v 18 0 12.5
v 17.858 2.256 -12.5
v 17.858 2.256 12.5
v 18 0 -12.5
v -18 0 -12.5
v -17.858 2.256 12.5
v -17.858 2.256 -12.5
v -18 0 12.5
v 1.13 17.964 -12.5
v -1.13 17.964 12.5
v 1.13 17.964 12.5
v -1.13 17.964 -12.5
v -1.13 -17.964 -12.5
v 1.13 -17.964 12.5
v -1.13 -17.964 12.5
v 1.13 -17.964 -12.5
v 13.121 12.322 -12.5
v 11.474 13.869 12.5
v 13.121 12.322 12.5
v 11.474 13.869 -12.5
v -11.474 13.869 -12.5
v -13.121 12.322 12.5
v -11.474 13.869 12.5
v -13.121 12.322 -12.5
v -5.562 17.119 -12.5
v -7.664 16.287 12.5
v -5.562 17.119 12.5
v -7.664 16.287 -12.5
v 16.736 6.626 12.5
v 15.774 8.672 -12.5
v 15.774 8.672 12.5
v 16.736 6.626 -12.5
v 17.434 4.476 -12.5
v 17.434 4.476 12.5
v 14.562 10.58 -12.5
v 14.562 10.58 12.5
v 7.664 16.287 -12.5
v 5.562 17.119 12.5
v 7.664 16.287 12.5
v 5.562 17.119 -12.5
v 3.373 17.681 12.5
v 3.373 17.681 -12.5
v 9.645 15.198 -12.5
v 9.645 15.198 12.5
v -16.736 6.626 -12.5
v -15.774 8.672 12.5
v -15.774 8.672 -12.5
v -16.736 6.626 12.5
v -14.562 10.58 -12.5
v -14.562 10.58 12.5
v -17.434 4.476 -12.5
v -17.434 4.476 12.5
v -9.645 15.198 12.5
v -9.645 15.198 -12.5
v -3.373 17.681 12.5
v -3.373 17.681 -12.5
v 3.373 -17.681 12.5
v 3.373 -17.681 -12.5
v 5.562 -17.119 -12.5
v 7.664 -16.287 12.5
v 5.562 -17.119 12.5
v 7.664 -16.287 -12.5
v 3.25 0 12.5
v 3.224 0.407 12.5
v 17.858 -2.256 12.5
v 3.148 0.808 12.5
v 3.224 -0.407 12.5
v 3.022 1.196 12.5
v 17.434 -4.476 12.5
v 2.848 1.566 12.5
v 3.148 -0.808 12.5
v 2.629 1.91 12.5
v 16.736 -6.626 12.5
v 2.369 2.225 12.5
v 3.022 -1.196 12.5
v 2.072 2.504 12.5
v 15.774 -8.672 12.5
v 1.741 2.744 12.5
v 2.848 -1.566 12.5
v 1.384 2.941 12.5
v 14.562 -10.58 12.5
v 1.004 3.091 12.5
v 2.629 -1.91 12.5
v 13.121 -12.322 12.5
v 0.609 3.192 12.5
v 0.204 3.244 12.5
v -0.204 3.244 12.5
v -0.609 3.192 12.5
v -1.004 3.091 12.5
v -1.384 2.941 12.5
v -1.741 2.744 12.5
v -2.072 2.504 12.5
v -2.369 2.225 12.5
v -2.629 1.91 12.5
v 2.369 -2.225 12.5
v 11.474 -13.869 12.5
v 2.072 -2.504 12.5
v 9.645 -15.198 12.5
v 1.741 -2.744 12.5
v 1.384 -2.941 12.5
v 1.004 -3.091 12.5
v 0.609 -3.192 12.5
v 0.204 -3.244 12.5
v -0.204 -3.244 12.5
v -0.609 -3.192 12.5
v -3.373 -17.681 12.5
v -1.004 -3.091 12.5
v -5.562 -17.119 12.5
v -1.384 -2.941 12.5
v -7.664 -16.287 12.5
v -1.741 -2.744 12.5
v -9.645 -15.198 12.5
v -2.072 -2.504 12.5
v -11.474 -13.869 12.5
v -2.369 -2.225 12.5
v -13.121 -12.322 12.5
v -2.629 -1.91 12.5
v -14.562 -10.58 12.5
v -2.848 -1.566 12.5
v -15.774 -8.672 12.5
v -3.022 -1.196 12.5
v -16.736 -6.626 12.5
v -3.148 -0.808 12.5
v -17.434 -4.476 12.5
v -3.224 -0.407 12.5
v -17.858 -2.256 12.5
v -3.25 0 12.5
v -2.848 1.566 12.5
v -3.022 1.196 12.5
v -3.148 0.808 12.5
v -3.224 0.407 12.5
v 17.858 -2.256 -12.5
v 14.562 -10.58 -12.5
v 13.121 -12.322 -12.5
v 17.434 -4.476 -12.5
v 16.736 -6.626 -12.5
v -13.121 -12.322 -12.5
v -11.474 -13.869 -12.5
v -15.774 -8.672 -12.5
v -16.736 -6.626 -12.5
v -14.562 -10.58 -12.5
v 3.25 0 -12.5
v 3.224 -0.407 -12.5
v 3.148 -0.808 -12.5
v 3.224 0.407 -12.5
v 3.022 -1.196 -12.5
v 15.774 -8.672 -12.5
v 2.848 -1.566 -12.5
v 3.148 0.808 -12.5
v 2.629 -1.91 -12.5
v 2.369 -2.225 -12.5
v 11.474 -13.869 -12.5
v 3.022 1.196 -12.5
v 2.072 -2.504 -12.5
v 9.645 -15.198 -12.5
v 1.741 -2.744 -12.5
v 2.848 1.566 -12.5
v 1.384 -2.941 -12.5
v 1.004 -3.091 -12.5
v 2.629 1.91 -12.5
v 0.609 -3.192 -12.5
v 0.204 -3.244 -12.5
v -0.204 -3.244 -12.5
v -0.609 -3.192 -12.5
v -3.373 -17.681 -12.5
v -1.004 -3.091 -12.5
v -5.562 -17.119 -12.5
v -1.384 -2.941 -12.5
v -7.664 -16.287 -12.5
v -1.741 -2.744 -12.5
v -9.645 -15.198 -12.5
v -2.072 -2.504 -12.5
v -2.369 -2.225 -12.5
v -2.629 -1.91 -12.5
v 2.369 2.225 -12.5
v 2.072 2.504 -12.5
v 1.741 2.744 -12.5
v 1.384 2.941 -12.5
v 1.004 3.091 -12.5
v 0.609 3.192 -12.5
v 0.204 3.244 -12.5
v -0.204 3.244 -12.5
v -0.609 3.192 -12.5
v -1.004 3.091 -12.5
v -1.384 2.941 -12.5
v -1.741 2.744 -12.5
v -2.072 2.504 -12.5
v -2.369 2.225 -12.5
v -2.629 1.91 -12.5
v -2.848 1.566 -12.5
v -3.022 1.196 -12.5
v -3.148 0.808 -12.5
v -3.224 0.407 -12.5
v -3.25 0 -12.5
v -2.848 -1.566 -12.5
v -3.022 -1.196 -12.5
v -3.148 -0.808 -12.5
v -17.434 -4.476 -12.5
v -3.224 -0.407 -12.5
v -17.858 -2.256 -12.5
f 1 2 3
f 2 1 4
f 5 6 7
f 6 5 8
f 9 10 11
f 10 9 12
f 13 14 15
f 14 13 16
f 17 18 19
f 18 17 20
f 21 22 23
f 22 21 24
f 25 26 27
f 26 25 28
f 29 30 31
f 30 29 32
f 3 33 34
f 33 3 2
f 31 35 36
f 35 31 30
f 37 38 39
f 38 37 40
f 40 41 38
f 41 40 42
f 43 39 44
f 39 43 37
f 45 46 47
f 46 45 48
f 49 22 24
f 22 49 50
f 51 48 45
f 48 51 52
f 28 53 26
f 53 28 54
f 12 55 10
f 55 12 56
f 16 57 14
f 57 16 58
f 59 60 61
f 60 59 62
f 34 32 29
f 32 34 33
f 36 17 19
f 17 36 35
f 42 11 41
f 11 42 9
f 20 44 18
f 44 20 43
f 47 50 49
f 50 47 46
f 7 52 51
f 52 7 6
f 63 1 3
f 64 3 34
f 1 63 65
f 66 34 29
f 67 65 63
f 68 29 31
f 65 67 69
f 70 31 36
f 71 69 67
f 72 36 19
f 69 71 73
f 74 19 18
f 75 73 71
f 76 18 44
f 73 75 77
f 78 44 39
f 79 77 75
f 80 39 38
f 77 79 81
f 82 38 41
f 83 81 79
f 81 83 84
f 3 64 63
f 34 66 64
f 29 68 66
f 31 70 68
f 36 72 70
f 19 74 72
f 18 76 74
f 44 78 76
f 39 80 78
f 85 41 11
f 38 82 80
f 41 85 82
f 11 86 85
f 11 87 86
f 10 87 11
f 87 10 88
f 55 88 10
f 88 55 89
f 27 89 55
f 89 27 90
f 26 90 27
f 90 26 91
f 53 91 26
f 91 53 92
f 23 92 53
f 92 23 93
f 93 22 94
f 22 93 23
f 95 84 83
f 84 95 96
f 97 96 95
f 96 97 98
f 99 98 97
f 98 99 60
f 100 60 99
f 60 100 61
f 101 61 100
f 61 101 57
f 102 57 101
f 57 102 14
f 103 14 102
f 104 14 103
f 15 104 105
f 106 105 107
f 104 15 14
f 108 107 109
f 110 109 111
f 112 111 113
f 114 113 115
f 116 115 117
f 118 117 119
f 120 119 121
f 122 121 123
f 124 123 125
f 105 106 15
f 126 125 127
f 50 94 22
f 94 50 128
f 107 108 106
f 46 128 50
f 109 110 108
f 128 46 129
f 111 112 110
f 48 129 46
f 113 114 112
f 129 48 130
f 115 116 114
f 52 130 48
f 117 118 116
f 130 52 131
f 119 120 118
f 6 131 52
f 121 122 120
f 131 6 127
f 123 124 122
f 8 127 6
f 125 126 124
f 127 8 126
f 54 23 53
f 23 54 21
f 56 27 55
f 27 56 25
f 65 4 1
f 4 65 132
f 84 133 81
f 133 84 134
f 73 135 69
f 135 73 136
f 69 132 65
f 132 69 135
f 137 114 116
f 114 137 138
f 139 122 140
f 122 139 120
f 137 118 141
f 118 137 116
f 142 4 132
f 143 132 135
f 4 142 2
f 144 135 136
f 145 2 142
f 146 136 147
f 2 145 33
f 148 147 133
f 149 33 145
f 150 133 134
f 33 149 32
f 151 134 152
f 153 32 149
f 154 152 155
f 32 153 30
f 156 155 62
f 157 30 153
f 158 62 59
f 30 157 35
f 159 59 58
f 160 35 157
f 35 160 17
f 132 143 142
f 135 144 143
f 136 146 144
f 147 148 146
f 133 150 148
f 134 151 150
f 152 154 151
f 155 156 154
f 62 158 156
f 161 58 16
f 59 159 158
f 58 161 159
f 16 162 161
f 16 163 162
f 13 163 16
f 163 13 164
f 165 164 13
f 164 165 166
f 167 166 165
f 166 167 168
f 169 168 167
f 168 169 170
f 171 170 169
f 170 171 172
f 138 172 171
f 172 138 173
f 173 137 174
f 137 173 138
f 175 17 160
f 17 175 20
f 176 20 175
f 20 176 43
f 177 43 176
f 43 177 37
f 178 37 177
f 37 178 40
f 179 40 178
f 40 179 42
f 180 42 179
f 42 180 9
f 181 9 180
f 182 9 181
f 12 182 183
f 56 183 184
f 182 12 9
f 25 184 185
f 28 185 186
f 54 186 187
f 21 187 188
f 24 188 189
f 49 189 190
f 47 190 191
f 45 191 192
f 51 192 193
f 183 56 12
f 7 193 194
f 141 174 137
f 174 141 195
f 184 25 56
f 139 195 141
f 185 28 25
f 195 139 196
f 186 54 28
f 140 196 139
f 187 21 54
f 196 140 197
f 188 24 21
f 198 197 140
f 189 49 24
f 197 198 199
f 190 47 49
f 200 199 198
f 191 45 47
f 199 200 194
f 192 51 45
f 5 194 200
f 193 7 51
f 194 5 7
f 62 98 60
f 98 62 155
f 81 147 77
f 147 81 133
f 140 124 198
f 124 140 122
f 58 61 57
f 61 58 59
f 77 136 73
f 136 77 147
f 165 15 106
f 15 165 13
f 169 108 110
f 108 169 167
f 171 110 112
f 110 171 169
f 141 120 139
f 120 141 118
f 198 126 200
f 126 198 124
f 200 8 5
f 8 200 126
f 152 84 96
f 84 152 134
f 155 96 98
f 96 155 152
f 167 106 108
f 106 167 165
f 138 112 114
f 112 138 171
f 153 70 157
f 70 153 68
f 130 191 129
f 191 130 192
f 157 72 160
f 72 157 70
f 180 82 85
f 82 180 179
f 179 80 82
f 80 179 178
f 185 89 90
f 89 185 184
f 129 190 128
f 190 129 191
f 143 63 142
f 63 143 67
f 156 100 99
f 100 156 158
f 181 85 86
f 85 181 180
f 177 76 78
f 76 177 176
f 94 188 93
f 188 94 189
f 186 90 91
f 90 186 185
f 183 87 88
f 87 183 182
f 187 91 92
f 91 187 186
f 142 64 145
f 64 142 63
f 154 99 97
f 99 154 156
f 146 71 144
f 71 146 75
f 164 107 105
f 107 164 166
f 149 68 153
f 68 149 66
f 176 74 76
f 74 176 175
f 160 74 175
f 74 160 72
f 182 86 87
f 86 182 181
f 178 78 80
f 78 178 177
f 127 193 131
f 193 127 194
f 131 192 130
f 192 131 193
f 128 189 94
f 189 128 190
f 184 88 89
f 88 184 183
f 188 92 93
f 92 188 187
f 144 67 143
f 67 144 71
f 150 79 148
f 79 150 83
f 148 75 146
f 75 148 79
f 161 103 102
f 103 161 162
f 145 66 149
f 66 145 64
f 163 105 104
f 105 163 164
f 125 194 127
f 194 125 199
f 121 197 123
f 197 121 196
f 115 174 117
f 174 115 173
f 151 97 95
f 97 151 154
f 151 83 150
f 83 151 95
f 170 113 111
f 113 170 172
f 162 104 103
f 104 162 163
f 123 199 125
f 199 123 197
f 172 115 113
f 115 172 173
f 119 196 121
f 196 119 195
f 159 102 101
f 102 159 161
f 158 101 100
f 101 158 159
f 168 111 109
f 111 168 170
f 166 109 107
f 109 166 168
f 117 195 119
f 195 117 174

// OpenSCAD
$fn = 50;


difference() {
	union() {
		translate(v = [0, 0, -12.5000000000]) {
			cylinder(h = 25, r = 18.0000000000);
		}
	}
	union() {
		translate(v = [0, 0, -100.0000000000]) {
			cylinder(h = 200, r = 3.2500000000);
		}
	}
}
